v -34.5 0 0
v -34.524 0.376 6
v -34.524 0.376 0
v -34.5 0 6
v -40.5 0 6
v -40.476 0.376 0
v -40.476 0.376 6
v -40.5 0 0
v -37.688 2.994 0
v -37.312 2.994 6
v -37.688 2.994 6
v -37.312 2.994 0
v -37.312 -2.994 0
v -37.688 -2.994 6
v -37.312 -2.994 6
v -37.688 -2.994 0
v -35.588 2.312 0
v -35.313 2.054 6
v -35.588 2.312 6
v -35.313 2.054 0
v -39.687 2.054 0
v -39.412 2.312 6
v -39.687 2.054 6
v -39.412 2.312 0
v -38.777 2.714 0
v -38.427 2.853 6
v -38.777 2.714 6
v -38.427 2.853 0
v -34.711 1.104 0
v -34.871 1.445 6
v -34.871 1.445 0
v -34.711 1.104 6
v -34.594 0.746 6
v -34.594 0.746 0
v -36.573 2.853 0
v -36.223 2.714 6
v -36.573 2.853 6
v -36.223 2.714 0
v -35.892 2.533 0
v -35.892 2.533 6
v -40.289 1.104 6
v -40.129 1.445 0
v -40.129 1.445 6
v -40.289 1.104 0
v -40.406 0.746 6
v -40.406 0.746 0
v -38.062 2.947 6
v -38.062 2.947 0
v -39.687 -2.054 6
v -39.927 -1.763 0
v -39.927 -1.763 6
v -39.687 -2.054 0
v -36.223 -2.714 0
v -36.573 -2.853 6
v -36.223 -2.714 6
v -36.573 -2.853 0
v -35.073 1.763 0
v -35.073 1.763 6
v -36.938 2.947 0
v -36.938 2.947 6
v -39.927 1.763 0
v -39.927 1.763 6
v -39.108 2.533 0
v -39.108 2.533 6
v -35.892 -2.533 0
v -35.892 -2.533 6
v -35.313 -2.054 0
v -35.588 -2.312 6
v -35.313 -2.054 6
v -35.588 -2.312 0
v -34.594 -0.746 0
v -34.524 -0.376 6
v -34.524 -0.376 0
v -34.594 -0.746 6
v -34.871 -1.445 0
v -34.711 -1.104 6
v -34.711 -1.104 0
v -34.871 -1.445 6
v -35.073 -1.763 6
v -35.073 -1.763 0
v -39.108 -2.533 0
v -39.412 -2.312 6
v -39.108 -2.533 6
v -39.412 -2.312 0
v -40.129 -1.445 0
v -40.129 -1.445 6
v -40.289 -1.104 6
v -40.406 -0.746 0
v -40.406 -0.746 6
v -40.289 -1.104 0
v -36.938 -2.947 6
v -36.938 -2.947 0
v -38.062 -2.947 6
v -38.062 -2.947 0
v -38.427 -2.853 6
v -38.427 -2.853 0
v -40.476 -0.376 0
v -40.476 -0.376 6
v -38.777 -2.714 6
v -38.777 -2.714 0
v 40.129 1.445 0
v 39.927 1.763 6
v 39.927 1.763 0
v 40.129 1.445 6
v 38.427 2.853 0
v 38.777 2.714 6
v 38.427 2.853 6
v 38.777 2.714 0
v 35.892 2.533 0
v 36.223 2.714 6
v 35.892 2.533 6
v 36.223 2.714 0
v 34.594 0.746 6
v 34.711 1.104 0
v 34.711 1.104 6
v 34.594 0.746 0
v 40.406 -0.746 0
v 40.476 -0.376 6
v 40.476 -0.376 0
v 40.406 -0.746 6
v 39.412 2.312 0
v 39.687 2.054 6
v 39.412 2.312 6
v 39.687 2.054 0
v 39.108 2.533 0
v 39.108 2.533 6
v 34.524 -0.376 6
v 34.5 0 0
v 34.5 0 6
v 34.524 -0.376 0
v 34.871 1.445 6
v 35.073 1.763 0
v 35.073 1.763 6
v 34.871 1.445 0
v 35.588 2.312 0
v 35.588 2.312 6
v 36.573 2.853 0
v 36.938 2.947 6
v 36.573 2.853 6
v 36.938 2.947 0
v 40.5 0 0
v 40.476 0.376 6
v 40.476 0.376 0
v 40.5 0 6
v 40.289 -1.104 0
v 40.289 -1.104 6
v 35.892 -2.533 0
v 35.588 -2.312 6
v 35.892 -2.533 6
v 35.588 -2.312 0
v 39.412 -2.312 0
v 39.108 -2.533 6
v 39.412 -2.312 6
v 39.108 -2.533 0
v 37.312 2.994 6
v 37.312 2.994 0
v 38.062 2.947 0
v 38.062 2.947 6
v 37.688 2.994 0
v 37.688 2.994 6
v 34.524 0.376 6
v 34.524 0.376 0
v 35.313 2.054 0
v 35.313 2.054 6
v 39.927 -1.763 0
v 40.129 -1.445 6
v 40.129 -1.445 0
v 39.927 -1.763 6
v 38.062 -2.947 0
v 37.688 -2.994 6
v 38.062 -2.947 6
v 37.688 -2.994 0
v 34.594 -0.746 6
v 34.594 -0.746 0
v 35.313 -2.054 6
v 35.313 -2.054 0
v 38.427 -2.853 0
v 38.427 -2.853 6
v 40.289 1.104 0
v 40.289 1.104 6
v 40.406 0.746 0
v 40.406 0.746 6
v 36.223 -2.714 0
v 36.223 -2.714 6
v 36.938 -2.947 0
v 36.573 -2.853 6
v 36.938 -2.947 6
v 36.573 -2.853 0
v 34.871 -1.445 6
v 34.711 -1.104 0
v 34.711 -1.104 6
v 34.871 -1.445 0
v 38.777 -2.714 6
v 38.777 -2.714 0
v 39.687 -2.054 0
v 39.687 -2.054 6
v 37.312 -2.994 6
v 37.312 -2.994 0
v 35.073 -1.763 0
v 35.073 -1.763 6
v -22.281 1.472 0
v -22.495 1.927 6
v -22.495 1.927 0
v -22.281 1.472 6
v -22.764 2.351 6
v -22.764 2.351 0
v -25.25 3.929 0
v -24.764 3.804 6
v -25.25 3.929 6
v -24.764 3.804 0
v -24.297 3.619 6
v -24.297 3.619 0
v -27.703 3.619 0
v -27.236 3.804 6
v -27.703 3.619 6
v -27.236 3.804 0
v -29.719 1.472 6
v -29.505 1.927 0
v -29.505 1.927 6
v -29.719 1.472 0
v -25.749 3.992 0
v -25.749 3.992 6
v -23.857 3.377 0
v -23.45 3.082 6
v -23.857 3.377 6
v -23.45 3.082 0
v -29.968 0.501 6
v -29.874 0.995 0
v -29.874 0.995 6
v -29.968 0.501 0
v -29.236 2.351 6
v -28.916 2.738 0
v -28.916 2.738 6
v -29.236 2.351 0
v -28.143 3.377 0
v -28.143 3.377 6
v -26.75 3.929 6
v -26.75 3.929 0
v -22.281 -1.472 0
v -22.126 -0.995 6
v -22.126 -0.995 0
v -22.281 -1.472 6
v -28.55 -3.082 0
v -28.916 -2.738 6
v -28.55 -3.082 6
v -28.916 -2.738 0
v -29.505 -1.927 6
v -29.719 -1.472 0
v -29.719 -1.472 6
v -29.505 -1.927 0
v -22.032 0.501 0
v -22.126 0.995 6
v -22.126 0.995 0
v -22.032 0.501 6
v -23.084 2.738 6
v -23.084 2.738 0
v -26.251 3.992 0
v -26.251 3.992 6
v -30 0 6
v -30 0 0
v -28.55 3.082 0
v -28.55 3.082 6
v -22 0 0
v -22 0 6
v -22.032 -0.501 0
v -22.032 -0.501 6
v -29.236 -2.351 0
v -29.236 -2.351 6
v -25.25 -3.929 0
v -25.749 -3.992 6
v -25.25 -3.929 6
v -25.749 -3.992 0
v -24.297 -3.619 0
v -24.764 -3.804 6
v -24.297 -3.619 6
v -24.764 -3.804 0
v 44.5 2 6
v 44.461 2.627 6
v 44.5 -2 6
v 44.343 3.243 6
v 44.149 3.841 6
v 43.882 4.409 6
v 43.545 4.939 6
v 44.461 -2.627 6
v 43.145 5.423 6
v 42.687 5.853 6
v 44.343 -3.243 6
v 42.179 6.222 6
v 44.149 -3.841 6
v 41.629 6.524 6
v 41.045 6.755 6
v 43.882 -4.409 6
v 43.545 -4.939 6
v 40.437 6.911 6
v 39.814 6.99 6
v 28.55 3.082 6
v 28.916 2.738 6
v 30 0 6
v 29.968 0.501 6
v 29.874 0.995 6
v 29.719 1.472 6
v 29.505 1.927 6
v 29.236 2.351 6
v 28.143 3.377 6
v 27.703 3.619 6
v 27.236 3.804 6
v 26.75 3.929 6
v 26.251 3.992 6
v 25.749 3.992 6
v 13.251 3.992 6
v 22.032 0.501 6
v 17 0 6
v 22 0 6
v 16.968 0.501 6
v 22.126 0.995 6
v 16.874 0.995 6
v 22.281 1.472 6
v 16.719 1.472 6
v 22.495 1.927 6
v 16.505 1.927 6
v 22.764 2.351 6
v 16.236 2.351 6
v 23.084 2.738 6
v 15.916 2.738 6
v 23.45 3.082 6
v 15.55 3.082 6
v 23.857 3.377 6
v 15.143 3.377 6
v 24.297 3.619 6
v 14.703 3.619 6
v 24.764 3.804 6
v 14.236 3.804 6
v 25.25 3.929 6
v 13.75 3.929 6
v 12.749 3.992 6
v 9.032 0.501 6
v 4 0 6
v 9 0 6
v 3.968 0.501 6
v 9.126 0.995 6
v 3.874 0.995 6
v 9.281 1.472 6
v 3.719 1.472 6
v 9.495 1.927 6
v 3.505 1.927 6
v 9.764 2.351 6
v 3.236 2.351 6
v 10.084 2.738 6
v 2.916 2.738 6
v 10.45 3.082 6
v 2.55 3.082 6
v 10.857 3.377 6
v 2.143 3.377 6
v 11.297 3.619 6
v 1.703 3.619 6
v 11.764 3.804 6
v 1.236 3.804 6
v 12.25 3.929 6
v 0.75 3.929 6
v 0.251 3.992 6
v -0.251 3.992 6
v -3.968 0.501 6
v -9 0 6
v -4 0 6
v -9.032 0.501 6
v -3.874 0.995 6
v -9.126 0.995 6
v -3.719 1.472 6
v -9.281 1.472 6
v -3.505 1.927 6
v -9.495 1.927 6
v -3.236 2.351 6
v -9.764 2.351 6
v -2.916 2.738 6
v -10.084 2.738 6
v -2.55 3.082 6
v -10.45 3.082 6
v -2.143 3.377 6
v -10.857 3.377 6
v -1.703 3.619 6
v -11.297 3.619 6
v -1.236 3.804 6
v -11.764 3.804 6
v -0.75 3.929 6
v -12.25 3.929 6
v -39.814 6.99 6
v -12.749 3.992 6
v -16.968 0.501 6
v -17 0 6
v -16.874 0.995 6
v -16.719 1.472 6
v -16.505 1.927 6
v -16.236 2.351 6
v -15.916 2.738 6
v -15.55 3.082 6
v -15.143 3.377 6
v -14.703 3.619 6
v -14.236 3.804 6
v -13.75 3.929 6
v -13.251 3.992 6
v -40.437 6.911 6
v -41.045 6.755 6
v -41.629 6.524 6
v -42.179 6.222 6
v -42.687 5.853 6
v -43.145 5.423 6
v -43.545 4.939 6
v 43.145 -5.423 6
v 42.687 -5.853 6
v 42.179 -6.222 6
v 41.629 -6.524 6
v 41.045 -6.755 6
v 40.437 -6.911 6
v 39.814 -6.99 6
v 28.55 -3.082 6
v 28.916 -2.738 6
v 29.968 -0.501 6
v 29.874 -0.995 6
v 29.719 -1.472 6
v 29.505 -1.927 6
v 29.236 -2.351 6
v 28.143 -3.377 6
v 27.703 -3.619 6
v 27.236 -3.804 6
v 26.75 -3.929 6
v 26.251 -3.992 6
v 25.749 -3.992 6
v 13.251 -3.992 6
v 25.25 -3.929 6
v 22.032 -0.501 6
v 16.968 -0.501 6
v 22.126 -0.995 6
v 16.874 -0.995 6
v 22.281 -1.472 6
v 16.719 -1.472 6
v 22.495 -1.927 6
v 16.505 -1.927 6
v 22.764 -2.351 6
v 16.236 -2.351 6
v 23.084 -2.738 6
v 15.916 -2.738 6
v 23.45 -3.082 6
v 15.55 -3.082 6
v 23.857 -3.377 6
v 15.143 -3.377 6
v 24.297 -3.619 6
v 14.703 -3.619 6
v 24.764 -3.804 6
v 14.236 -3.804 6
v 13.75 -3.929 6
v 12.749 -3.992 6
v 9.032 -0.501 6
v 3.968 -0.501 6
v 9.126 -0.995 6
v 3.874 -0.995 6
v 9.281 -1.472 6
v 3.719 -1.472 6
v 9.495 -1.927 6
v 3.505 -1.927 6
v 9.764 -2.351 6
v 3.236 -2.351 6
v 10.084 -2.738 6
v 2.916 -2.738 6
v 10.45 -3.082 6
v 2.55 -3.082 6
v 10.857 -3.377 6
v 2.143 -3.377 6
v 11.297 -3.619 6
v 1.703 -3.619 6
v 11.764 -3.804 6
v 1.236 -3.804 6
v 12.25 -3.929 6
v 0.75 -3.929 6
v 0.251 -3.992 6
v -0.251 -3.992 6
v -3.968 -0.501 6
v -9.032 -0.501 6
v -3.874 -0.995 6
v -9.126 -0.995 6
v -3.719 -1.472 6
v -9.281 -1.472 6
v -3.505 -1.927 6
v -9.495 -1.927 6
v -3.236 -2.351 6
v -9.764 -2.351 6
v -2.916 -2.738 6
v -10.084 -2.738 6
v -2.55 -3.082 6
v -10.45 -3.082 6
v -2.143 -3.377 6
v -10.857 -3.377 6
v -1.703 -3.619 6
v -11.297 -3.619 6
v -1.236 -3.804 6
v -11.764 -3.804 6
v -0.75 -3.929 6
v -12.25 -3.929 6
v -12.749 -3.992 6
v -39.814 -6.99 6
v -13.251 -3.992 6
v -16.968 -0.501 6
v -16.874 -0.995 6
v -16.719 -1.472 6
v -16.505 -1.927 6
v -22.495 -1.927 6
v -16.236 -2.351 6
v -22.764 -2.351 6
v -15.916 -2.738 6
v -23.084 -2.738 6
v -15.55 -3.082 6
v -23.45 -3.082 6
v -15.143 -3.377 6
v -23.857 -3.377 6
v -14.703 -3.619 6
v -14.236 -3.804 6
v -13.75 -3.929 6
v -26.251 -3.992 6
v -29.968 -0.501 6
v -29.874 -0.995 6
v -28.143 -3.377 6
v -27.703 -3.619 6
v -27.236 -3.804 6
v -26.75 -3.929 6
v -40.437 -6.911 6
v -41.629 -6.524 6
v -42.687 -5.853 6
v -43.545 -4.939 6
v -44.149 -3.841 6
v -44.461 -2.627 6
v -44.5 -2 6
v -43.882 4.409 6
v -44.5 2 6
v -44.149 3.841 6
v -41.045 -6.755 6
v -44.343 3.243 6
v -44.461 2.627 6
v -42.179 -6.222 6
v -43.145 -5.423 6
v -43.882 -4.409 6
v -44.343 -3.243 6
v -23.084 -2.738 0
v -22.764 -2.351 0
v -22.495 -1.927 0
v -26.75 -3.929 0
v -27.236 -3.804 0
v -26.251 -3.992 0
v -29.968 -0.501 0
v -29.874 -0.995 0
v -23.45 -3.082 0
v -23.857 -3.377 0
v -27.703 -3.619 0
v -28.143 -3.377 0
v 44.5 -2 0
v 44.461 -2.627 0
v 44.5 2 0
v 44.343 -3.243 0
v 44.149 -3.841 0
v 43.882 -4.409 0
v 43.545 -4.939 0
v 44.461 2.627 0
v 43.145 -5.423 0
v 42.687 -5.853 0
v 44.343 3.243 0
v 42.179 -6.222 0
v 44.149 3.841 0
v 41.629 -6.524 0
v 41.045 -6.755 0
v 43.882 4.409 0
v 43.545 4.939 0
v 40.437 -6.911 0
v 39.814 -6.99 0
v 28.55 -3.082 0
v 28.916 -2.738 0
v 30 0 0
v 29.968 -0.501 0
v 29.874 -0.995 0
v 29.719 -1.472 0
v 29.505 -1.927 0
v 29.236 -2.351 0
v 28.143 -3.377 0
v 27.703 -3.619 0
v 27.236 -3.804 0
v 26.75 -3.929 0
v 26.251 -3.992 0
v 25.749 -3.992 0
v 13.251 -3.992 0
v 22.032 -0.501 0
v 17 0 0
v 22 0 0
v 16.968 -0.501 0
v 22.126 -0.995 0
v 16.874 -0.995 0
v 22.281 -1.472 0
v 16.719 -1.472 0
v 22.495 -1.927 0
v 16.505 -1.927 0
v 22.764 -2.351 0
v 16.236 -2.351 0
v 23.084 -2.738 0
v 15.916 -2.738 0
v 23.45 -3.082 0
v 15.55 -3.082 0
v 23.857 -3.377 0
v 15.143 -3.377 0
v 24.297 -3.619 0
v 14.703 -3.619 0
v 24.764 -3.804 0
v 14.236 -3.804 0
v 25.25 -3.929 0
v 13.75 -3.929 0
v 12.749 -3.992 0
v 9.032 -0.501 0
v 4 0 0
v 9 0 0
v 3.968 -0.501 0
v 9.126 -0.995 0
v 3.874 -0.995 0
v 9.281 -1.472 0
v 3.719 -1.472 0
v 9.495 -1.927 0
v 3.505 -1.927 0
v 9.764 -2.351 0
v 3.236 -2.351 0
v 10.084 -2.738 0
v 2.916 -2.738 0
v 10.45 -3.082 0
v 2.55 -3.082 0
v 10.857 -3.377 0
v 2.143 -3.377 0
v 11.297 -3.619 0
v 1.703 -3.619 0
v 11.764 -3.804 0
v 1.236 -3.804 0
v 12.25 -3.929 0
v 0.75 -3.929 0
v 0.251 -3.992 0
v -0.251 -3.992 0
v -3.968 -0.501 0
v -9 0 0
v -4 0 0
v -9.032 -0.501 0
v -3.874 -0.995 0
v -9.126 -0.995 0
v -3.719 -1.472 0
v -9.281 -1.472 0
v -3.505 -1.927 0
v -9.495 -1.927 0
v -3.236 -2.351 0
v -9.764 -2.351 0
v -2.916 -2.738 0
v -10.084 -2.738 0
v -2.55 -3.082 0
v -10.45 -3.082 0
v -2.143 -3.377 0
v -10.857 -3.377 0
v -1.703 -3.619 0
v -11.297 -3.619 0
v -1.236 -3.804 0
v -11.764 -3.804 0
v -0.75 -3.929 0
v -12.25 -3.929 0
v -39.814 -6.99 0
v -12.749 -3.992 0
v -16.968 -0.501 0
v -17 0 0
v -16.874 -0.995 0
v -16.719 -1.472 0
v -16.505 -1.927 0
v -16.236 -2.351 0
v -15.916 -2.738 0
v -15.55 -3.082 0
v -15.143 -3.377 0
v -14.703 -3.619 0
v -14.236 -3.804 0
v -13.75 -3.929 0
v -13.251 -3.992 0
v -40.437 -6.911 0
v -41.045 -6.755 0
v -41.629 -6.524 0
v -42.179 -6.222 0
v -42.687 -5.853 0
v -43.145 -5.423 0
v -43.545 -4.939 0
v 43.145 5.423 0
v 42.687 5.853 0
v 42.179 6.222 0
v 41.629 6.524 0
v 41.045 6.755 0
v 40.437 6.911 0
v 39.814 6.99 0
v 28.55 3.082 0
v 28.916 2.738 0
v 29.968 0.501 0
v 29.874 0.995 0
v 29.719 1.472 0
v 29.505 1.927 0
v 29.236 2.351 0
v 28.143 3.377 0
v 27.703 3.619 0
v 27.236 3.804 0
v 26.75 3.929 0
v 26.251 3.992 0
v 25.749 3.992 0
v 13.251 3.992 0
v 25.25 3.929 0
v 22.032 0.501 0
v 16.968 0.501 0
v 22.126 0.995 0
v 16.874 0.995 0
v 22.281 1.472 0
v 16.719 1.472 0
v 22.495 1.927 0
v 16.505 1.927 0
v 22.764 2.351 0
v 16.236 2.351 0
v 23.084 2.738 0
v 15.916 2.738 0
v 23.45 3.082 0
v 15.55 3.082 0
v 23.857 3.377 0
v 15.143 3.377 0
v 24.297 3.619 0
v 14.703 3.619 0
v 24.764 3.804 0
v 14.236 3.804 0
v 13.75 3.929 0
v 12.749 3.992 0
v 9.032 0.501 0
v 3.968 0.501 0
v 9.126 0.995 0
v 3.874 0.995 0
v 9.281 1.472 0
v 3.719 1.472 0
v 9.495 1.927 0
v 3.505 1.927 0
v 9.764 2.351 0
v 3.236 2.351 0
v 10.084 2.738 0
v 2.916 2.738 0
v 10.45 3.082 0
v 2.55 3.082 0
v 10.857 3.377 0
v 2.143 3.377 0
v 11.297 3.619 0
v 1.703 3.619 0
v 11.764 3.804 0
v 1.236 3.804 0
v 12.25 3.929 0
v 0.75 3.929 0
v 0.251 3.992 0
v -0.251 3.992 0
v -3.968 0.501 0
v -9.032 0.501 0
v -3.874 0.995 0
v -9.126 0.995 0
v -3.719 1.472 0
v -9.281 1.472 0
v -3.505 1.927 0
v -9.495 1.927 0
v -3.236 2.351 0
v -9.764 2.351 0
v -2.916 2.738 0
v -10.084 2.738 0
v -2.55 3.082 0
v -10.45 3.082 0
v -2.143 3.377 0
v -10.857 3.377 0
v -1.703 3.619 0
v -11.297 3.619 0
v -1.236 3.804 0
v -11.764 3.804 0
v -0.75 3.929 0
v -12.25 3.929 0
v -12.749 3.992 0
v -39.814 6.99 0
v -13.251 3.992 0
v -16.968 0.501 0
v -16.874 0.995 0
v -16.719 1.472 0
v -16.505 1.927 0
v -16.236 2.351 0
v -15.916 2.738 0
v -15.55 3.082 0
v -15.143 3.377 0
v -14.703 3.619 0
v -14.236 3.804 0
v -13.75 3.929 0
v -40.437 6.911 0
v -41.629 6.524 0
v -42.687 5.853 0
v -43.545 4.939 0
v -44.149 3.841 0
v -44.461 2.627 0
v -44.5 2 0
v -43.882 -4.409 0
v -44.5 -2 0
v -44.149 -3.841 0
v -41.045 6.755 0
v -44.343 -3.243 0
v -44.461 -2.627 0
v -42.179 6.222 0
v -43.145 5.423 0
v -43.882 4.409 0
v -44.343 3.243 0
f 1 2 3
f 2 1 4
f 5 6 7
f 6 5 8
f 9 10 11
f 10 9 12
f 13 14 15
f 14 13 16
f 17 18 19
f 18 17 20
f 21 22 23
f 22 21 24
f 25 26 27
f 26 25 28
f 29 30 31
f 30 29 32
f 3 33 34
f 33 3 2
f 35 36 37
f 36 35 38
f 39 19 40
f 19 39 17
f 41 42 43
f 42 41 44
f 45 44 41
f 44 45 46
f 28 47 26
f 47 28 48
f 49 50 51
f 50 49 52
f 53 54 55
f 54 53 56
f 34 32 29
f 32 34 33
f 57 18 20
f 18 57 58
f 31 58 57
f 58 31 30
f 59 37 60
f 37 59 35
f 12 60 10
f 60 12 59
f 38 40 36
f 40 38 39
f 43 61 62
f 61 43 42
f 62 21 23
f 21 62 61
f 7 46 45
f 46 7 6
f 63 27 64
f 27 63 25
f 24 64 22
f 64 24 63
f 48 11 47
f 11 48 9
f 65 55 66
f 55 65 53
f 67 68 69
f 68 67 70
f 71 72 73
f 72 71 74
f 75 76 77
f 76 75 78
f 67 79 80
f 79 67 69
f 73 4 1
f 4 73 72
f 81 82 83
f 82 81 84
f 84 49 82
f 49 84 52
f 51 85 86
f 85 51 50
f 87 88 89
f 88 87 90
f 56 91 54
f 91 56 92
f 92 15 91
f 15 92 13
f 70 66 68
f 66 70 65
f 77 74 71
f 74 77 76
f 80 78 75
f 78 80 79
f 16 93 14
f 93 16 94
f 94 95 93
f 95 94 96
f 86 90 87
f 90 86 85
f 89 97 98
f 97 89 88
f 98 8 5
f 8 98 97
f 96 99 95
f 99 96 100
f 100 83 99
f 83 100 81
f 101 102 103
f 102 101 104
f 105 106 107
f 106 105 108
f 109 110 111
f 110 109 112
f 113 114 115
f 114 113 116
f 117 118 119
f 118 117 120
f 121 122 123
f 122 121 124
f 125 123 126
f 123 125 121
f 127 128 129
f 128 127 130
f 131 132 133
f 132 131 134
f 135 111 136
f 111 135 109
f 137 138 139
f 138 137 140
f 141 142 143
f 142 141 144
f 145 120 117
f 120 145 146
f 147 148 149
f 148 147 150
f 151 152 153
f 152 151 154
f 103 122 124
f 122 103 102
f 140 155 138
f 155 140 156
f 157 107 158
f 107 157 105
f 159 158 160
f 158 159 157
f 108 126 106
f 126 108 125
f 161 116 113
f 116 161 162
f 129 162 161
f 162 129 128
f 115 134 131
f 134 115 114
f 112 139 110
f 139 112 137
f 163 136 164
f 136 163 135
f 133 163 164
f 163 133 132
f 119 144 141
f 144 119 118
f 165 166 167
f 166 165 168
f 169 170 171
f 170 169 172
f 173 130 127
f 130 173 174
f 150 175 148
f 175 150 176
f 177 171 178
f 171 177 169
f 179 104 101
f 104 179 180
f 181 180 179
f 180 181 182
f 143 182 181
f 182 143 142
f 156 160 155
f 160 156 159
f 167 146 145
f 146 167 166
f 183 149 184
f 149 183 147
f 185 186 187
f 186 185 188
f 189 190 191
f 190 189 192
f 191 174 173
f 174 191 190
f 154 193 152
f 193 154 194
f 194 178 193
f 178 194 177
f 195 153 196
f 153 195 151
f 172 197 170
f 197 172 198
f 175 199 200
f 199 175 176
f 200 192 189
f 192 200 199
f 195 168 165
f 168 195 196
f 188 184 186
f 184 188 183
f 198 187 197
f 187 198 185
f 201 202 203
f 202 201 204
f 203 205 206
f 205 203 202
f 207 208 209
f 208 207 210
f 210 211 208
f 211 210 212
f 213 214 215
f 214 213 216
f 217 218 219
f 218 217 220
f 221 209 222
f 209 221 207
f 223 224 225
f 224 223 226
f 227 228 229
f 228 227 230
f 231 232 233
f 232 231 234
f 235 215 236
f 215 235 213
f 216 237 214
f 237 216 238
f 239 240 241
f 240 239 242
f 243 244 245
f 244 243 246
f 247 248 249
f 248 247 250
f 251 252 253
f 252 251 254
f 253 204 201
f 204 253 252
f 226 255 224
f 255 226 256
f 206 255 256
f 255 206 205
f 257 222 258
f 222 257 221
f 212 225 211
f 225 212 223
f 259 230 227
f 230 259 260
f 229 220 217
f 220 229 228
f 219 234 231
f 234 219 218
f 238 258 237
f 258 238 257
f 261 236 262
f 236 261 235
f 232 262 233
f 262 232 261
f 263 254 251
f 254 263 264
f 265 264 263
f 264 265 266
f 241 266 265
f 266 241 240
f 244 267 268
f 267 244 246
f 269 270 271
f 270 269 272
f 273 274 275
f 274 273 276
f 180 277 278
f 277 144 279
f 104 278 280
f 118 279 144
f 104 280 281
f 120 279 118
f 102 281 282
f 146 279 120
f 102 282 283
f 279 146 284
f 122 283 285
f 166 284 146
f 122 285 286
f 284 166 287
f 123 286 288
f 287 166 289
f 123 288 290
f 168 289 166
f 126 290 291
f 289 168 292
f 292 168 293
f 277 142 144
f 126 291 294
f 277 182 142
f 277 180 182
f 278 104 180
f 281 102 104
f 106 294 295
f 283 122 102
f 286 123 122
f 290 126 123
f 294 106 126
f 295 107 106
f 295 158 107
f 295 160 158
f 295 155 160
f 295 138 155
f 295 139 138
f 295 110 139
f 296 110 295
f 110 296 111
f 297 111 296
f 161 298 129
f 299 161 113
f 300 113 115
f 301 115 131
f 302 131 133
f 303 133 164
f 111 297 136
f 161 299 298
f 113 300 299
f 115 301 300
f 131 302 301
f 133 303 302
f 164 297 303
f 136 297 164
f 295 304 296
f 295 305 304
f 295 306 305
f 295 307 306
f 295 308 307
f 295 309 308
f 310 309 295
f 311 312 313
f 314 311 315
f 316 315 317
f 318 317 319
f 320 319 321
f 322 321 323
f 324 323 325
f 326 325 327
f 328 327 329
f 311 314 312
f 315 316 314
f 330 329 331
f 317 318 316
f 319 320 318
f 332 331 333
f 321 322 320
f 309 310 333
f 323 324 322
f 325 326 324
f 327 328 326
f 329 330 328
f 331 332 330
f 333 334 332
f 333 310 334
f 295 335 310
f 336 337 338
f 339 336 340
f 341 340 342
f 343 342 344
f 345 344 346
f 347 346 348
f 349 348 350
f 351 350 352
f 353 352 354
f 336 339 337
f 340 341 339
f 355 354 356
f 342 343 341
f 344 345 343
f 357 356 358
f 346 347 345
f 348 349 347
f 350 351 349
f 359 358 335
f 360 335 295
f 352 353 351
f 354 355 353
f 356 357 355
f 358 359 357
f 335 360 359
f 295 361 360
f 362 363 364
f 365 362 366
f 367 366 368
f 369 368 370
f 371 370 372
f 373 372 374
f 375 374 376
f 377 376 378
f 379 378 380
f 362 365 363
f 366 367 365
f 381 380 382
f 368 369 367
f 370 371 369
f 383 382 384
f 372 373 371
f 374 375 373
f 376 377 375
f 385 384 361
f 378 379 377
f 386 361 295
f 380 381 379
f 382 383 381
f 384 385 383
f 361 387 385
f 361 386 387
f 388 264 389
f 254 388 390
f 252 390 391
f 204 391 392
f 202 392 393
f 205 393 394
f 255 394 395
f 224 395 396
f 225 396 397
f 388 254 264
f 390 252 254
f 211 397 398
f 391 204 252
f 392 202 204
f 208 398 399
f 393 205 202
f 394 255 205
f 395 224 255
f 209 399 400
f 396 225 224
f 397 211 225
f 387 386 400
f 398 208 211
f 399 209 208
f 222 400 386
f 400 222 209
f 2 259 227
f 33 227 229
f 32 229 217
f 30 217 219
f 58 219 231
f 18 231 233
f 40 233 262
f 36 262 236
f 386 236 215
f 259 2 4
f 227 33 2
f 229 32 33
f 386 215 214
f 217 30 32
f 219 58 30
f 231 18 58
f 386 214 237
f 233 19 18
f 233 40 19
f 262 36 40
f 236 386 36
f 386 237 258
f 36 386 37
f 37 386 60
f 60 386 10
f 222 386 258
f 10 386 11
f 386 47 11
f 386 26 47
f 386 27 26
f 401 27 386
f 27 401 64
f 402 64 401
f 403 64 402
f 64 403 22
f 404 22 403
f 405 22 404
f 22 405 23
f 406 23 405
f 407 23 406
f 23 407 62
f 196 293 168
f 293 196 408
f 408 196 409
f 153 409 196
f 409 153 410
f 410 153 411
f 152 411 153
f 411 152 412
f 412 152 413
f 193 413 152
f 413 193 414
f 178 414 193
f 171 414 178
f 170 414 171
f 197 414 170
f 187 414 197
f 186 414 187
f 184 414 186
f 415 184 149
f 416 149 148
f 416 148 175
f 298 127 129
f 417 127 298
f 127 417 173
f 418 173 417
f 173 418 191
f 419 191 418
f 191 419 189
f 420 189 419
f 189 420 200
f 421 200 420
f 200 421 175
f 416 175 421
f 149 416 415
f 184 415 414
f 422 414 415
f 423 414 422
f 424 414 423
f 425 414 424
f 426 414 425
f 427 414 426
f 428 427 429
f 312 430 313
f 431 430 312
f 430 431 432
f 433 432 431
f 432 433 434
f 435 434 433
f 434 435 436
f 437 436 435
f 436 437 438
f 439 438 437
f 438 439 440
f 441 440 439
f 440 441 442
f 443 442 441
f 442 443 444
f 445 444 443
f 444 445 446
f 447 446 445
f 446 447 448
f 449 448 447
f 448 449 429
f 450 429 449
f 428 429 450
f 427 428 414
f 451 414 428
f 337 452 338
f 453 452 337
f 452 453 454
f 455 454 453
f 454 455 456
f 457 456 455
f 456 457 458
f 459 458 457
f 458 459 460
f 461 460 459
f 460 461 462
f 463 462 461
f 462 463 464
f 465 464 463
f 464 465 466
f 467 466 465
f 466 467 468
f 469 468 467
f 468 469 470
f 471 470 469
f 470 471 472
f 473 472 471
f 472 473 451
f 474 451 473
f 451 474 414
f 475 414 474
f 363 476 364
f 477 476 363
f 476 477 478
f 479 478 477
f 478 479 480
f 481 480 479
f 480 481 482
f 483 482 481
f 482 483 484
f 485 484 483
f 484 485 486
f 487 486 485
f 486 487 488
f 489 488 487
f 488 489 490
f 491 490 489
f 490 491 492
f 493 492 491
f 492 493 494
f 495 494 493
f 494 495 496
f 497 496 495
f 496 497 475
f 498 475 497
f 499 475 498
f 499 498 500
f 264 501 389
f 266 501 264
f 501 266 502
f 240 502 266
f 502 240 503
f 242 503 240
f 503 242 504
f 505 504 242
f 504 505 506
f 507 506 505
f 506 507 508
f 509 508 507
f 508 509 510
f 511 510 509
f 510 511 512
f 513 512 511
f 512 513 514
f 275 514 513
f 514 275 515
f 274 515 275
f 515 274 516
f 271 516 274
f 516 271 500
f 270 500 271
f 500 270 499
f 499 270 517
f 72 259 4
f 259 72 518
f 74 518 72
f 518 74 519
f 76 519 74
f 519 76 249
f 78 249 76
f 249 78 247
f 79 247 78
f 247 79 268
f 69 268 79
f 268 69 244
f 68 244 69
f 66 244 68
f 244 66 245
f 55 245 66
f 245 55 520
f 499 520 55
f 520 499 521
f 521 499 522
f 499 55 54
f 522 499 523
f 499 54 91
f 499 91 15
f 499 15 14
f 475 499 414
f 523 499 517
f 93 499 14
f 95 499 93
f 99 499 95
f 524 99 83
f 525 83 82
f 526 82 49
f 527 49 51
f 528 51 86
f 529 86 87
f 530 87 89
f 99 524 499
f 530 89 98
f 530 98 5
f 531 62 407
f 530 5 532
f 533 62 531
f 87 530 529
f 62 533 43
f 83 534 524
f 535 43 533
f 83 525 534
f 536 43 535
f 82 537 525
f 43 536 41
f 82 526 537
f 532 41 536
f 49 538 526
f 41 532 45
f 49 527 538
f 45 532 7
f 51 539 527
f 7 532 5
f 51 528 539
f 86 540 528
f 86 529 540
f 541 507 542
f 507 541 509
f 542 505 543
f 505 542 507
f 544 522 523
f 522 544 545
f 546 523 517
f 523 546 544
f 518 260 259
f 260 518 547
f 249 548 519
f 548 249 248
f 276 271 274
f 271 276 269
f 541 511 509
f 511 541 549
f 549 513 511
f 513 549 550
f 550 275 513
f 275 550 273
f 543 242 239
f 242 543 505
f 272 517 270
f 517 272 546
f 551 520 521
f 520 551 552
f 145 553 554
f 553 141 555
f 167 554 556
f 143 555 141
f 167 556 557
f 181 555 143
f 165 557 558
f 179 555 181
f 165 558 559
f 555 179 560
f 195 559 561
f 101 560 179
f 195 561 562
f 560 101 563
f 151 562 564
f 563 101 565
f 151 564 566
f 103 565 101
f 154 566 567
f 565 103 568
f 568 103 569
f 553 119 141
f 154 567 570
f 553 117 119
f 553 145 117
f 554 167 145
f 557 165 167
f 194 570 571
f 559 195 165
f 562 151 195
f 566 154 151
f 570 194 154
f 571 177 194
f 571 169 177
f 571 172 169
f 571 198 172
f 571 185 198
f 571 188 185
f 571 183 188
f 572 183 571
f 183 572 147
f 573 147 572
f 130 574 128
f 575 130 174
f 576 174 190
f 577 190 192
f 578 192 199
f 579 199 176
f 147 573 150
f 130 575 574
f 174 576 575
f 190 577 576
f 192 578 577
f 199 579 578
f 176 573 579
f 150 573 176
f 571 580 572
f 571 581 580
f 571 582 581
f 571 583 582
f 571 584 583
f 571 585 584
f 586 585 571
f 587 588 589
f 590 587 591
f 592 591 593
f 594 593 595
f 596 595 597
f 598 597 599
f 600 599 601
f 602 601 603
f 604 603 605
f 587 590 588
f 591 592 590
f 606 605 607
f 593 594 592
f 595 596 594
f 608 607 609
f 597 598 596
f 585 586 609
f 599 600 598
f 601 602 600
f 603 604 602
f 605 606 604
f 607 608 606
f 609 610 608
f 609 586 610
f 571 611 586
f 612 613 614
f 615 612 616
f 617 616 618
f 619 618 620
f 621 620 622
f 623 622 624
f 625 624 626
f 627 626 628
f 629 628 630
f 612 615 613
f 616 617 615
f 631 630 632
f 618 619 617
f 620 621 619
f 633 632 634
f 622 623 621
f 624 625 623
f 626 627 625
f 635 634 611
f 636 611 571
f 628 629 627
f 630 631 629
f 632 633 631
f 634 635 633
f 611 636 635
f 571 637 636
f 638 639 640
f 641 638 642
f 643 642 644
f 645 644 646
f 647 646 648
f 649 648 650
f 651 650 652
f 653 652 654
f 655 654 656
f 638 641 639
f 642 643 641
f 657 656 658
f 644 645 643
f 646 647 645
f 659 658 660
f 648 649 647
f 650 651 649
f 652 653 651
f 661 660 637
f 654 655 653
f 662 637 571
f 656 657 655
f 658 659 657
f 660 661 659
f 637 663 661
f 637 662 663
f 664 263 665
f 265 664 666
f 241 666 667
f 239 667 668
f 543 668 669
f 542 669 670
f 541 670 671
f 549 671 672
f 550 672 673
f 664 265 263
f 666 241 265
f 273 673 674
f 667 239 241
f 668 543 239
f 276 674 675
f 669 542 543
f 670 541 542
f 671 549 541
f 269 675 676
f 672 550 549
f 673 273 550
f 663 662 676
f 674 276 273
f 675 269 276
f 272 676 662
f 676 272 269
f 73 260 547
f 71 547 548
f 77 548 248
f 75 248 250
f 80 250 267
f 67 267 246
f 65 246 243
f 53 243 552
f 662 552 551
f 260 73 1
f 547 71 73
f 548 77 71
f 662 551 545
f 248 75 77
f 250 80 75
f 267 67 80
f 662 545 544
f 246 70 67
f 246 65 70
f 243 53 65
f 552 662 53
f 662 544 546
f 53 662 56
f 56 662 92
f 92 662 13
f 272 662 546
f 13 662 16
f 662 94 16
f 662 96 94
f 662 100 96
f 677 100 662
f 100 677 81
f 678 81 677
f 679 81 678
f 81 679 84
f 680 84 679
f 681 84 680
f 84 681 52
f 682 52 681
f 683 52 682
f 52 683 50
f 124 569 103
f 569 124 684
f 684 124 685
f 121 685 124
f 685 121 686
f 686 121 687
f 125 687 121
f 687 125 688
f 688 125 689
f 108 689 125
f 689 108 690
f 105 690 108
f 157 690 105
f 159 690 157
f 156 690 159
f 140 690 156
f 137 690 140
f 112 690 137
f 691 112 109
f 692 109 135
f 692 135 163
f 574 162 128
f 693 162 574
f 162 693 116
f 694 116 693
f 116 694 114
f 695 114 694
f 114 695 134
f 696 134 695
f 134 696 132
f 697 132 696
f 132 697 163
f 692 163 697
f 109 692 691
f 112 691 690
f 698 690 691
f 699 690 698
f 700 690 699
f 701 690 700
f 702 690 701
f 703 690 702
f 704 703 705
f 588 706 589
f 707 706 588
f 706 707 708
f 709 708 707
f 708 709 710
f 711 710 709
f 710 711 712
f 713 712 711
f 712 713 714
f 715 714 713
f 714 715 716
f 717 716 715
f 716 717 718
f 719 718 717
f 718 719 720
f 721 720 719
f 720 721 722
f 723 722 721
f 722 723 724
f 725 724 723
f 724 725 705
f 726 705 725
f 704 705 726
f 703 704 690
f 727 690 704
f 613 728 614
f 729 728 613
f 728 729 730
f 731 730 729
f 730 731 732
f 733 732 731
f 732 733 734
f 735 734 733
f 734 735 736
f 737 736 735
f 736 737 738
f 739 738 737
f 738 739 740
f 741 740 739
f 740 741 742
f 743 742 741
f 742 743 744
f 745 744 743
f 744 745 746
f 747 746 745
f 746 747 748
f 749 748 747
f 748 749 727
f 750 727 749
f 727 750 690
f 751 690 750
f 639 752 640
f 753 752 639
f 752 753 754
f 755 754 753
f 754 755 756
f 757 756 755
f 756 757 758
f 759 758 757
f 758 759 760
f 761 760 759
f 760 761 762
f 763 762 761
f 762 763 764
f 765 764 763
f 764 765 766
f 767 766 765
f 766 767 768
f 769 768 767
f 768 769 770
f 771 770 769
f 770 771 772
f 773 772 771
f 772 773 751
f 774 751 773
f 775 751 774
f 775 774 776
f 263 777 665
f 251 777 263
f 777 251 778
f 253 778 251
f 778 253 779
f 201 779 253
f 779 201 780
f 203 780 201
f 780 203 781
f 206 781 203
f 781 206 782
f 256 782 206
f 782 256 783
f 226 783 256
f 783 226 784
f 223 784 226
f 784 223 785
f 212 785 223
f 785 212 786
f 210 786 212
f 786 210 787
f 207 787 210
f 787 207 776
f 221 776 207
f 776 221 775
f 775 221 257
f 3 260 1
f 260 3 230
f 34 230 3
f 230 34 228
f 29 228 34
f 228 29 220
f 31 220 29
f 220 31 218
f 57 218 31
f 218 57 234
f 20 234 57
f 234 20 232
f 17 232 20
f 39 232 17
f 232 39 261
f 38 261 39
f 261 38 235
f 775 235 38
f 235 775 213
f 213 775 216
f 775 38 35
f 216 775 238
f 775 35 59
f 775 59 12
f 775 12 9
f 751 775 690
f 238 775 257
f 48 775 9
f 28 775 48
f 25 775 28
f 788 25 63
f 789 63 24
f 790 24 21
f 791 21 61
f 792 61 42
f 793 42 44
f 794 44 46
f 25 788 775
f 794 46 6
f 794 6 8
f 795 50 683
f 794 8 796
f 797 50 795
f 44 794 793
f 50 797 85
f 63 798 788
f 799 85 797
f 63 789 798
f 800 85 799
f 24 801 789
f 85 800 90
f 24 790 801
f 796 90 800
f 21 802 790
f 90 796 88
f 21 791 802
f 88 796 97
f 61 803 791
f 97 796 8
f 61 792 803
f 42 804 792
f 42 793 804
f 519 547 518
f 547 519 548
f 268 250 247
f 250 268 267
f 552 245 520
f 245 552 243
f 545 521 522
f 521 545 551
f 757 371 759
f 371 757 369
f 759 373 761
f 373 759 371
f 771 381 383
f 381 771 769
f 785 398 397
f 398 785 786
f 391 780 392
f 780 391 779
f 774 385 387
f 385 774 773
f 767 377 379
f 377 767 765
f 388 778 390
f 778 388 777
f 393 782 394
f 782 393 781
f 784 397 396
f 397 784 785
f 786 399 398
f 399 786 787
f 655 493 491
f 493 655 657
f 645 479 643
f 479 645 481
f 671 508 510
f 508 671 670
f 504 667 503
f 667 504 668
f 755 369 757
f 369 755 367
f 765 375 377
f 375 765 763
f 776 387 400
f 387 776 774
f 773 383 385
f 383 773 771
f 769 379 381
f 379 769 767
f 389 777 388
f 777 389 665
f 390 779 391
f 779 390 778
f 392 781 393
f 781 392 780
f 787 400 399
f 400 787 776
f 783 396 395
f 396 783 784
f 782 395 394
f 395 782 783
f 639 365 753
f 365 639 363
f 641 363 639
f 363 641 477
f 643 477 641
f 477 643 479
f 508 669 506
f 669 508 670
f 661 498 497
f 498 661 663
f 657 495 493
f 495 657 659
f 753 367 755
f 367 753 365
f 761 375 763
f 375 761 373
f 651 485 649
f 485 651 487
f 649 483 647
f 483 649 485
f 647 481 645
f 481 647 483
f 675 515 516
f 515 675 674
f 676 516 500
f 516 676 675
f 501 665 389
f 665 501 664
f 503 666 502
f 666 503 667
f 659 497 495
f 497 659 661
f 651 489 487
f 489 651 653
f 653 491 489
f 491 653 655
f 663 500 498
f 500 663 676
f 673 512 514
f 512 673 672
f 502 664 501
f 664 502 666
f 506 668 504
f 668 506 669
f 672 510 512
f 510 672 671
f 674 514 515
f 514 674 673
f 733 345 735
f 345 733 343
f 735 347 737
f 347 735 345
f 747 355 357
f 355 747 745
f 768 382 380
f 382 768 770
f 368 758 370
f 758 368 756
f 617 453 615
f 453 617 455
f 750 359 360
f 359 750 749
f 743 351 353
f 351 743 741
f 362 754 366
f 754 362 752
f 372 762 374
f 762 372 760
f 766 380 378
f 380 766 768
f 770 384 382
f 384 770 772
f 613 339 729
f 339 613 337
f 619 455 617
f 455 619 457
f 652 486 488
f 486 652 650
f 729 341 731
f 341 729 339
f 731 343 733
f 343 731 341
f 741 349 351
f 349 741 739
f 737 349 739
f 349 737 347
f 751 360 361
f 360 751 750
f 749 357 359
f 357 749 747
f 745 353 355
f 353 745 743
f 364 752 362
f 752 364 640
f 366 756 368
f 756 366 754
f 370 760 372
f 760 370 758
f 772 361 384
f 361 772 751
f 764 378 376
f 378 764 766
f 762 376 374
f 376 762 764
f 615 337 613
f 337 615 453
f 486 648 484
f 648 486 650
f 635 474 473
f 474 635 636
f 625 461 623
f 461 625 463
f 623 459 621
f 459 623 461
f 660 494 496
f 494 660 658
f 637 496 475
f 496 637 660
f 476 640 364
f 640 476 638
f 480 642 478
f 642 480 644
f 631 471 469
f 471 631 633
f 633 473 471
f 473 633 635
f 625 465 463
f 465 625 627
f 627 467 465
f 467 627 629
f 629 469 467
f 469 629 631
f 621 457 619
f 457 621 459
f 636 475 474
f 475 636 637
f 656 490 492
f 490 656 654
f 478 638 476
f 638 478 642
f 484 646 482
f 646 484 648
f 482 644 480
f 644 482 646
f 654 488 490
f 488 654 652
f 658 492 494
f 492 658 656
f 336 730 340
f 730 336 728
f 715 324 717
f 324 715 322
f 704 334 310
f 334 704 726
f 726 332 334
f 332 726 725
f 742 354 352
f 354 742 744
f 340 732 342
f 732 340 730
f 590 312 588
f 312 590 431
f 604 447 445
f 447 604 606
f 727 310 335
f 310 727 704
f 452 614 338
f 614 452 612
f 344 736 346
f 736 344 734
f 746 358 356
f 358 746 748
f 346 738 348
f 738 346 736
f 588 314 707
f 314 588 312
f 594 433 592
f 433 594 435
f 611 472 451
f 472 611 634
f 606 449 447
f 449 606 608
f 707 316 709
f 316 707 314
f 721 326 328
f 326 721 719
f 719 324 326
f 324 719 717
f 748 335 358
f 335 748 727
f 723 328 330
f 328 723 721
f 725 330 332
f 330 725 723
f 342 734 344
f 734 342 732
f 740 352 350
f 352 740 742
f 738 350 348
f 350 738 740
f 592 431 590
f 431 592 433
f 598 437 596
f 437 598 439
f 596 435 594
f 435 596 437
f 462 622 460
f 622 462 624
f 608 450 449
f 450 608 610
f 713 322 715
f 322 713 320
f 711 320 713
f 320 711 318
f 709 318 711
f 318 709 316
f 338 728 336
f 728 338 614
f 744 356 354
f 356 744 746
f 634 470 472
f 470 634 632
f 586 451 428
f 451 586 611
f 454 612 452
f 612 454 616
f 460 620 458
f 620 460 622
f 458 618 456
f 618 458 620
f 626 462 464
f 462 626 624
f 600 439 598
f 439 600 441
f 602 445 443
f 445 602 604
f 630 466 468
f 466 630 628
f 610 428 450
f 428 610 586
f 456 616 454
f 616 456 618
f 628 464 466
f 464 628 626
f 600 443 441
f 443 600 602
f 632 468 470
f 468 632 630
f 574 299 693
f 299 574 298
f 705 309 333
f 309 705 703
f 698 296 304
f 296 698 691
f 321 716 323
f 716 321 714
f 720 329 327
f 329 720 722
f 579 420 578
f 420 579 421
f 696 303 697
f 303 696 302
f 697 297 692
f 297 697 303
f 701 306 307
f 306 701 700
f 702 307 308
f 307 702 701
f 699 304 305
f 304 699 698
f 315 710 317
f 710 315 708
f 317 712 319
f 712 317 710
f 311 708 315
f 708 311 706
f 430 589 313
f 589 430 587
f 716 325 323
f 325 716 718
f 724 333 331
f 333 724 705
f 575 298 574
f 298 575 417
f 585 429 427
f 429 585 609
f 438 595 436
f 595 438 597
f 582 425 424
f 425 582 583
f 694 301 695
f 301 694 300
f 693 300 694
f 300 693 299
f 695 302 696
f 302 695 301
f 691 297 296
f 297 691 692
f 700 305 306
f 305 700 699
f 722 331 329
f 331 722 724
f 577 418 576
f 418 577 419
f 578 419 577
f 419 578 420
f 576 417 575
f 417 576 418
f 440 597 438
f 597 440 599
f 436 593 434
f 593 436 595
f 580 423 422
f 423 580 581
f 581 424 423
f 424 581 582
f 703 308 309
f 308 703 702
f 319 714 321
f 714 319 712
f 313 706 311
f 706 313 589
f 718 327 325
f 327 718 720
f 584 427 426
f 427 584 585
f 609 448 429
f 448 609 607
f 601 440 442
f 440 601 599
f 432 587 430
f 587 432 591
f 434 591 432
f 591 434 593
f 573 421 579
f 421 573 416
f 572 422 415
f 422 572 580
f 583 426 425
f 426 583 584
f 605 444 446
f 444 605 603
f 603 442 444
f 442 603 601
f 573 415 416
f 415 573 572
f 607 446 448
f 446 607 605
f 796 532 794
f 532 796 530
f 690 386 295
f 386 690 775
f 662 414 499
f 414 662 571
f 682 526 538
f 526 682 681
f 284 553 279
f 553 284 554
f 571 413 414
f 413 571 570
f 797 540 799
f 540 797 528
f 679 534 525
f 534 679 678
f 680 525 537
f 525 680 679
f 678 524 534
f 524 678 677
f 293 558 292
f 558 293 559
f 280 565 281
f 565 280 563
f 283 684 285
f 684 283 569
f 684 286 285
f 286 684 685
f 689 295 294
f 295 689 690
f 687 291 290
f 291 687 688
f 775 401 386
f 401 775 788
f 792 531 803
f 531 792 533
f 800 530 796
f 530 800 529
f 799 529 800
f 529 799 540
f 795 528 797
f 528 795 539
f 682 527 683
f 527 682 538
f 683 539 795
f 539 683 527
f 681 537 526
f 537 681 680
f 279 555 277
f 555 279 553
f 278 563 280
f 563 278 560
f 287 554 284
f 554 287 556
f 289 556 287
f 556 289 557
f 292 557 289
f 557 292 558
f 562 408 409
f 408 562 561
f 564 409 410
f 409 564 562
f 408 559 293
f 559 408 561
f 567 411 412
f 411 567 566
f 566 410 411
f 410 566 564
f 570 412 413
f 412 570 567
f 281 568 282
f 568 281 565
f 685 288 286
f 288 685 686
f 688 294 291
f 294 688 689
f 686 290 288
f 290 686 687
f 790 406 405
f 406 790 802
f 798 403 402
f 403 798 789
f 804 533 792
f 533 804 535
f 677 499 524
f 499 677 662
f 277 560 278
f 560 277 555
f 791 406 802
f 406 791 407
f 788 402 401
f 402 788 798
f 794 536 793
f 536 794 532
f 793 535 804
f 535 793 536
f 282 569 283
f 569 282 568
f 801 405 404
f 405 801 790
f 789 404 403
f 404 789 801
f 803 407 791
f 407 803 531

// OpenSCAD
$fn = 50;


difference() {
	union() {
		hull() {
			translate(v = [-39.5000000000, 2.0000000000, 0]) {
				cylinder(h = 6, r = 5);
			}
			translate(v = [39.5000000000, 2.0000000000, 0]) {
				cylinder(h = 6, r = 5);
			}
			translate(v = [-39.5000000000, -2.0000000000, 0]) {
				cylinder(h = 6, r = 5);
			}
			translate(v = [39.5000000000, -2.0000000000, 0]) {
				cylinder(h = 6, r = 5);
			}
		}
	}
	union() {
		#translate(v = [-37.5000000000, 0.0000000000, 0]) {
			cylinder(h = 6, r = 3.0000000000);
		}
		#translate(v = [37.5000000000, 0.0000000000, 0]) {
			cylinder(h = 6, r = 3.0000000000);
		}
		#translate(v = [-37.5000000000, 0.0000000000, -100.0000000000]) {
			cylinder(h = 200, r = 3.0000000000);
		}
		#translate(v = [-37.5000000000, 0.0000000000, -100.0000000000]) {
			cylinder(h = 200, r = 3.0000000000);
		}
		#translate(v = [37.5000000000, 0.0000000000, -100.0000000000]) {
			cylinder(h = 200, r = 3.0000000000);
		}
		#translate(v = [37.5000000000, 0.0000000000, -100.0000000000]) {
			cylinder(h = 200, r = 3.0000000000);
		}
		#translate(v = [-37.5000000000, 0.0000000000, 0]) {
			cylinder(h = 6, r = 1.5000000000);
		}
		#translate(v = [37.5000000000, 0.0000000000, 0]) {
			cylinder(h = 6, r = 1.5000000000);
		}
		#translate(v = [-37.5000000000, 0.0000000000, 0]) {
			cylinder(h = 6, r = 1.5000000000);
		}
		#translate(v = [37.5000000000, 0.0000000000, 0]) {
			cylinder(h = 6, r = 1.5000000000);
		}
		#translate(v = [-37.5000000000, 0.0000000000, 0]) {
			cylinder(h = 6, r = 1.5000000000);
		}
		#translate(v = [37.5000000000, 0.0000000000, 0]) {
			cylinder(h = 6, r = 1.5000000000);
		}
		#translate(v = [-26.0000000000, 0, 0]) {
			cylinder(h = 6, r = 4.0000000000);
		}
		#translate(v = [-13.0000000000, 0, 0]) {
			cylinder(h = 6, r = 4.0000000000);
		}
		#cylinder(h = 6, r = 4.0000000000);
		#translate(v = [13.0000000000, 0, 0]) {
			cylinder(h = 6, r = 4.0000000000);
		}
		#translate(v = [26.0000000000, 0, 0]) {
			cylinder(h = 6, r = 4.0000000000);
		}
	}
}
